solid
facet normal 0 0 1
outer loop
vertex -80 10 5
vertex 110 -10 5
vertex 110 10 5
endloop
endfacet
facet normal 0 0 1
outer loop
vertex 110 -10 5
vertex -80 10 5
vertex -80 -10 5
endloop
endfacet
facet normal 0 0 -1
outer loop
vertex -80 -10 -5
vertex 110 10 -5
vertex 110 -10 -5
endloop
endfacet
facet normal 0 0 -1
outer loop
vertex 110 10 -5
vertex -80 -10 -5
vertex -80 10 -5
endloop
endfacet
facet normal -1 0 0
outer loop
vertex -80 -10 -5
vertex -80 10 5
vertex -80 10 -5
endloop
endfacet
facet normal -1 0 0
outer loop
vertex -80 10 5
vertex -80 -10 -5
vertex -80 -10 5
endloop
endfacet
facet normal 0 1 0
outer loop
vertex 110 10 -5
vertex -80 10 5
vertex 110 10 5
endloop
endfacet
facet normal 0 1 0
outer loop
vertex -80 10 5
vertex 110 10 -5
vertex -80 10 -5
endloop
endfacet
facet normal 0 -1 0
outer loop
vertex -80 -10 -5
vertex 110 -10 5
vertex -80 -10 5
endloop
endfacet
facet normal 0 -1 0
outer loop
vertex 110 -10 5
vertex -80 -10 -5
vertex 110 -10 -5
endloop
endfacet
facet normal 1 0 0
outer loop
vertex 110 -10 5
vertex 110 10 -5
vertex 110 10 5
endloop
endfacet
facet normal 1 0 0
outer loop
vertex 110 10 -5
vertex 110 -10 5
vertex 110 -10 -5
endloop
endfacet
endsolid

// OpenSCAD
// Define dimensions for the rectangular block
block_length = 40;  // Length of the block
block_width = 20;   // Width of the block
block_height = 10;  // Height of the block

// Function to create a rectangular block
module rectangular_block() {
    cube([block_length, block_width, block_height], center = true);
}

// Generate six rectangular blocks positioned independently
translate([-60, 0, 0]) rectangular_block();  // Block 1
translate([-30, 0, 0]) rectangular_block();  // Block 2
translate([0, 0, 0]) rectangular_block();    // Block 3
translate([30, 0, 0]) rectangular_block();   // Block 4
translate([60, 0, 0]) rectangular_block();   // Block 5
translate([90, 0, 0]) rectangular_block();   // Block 6
